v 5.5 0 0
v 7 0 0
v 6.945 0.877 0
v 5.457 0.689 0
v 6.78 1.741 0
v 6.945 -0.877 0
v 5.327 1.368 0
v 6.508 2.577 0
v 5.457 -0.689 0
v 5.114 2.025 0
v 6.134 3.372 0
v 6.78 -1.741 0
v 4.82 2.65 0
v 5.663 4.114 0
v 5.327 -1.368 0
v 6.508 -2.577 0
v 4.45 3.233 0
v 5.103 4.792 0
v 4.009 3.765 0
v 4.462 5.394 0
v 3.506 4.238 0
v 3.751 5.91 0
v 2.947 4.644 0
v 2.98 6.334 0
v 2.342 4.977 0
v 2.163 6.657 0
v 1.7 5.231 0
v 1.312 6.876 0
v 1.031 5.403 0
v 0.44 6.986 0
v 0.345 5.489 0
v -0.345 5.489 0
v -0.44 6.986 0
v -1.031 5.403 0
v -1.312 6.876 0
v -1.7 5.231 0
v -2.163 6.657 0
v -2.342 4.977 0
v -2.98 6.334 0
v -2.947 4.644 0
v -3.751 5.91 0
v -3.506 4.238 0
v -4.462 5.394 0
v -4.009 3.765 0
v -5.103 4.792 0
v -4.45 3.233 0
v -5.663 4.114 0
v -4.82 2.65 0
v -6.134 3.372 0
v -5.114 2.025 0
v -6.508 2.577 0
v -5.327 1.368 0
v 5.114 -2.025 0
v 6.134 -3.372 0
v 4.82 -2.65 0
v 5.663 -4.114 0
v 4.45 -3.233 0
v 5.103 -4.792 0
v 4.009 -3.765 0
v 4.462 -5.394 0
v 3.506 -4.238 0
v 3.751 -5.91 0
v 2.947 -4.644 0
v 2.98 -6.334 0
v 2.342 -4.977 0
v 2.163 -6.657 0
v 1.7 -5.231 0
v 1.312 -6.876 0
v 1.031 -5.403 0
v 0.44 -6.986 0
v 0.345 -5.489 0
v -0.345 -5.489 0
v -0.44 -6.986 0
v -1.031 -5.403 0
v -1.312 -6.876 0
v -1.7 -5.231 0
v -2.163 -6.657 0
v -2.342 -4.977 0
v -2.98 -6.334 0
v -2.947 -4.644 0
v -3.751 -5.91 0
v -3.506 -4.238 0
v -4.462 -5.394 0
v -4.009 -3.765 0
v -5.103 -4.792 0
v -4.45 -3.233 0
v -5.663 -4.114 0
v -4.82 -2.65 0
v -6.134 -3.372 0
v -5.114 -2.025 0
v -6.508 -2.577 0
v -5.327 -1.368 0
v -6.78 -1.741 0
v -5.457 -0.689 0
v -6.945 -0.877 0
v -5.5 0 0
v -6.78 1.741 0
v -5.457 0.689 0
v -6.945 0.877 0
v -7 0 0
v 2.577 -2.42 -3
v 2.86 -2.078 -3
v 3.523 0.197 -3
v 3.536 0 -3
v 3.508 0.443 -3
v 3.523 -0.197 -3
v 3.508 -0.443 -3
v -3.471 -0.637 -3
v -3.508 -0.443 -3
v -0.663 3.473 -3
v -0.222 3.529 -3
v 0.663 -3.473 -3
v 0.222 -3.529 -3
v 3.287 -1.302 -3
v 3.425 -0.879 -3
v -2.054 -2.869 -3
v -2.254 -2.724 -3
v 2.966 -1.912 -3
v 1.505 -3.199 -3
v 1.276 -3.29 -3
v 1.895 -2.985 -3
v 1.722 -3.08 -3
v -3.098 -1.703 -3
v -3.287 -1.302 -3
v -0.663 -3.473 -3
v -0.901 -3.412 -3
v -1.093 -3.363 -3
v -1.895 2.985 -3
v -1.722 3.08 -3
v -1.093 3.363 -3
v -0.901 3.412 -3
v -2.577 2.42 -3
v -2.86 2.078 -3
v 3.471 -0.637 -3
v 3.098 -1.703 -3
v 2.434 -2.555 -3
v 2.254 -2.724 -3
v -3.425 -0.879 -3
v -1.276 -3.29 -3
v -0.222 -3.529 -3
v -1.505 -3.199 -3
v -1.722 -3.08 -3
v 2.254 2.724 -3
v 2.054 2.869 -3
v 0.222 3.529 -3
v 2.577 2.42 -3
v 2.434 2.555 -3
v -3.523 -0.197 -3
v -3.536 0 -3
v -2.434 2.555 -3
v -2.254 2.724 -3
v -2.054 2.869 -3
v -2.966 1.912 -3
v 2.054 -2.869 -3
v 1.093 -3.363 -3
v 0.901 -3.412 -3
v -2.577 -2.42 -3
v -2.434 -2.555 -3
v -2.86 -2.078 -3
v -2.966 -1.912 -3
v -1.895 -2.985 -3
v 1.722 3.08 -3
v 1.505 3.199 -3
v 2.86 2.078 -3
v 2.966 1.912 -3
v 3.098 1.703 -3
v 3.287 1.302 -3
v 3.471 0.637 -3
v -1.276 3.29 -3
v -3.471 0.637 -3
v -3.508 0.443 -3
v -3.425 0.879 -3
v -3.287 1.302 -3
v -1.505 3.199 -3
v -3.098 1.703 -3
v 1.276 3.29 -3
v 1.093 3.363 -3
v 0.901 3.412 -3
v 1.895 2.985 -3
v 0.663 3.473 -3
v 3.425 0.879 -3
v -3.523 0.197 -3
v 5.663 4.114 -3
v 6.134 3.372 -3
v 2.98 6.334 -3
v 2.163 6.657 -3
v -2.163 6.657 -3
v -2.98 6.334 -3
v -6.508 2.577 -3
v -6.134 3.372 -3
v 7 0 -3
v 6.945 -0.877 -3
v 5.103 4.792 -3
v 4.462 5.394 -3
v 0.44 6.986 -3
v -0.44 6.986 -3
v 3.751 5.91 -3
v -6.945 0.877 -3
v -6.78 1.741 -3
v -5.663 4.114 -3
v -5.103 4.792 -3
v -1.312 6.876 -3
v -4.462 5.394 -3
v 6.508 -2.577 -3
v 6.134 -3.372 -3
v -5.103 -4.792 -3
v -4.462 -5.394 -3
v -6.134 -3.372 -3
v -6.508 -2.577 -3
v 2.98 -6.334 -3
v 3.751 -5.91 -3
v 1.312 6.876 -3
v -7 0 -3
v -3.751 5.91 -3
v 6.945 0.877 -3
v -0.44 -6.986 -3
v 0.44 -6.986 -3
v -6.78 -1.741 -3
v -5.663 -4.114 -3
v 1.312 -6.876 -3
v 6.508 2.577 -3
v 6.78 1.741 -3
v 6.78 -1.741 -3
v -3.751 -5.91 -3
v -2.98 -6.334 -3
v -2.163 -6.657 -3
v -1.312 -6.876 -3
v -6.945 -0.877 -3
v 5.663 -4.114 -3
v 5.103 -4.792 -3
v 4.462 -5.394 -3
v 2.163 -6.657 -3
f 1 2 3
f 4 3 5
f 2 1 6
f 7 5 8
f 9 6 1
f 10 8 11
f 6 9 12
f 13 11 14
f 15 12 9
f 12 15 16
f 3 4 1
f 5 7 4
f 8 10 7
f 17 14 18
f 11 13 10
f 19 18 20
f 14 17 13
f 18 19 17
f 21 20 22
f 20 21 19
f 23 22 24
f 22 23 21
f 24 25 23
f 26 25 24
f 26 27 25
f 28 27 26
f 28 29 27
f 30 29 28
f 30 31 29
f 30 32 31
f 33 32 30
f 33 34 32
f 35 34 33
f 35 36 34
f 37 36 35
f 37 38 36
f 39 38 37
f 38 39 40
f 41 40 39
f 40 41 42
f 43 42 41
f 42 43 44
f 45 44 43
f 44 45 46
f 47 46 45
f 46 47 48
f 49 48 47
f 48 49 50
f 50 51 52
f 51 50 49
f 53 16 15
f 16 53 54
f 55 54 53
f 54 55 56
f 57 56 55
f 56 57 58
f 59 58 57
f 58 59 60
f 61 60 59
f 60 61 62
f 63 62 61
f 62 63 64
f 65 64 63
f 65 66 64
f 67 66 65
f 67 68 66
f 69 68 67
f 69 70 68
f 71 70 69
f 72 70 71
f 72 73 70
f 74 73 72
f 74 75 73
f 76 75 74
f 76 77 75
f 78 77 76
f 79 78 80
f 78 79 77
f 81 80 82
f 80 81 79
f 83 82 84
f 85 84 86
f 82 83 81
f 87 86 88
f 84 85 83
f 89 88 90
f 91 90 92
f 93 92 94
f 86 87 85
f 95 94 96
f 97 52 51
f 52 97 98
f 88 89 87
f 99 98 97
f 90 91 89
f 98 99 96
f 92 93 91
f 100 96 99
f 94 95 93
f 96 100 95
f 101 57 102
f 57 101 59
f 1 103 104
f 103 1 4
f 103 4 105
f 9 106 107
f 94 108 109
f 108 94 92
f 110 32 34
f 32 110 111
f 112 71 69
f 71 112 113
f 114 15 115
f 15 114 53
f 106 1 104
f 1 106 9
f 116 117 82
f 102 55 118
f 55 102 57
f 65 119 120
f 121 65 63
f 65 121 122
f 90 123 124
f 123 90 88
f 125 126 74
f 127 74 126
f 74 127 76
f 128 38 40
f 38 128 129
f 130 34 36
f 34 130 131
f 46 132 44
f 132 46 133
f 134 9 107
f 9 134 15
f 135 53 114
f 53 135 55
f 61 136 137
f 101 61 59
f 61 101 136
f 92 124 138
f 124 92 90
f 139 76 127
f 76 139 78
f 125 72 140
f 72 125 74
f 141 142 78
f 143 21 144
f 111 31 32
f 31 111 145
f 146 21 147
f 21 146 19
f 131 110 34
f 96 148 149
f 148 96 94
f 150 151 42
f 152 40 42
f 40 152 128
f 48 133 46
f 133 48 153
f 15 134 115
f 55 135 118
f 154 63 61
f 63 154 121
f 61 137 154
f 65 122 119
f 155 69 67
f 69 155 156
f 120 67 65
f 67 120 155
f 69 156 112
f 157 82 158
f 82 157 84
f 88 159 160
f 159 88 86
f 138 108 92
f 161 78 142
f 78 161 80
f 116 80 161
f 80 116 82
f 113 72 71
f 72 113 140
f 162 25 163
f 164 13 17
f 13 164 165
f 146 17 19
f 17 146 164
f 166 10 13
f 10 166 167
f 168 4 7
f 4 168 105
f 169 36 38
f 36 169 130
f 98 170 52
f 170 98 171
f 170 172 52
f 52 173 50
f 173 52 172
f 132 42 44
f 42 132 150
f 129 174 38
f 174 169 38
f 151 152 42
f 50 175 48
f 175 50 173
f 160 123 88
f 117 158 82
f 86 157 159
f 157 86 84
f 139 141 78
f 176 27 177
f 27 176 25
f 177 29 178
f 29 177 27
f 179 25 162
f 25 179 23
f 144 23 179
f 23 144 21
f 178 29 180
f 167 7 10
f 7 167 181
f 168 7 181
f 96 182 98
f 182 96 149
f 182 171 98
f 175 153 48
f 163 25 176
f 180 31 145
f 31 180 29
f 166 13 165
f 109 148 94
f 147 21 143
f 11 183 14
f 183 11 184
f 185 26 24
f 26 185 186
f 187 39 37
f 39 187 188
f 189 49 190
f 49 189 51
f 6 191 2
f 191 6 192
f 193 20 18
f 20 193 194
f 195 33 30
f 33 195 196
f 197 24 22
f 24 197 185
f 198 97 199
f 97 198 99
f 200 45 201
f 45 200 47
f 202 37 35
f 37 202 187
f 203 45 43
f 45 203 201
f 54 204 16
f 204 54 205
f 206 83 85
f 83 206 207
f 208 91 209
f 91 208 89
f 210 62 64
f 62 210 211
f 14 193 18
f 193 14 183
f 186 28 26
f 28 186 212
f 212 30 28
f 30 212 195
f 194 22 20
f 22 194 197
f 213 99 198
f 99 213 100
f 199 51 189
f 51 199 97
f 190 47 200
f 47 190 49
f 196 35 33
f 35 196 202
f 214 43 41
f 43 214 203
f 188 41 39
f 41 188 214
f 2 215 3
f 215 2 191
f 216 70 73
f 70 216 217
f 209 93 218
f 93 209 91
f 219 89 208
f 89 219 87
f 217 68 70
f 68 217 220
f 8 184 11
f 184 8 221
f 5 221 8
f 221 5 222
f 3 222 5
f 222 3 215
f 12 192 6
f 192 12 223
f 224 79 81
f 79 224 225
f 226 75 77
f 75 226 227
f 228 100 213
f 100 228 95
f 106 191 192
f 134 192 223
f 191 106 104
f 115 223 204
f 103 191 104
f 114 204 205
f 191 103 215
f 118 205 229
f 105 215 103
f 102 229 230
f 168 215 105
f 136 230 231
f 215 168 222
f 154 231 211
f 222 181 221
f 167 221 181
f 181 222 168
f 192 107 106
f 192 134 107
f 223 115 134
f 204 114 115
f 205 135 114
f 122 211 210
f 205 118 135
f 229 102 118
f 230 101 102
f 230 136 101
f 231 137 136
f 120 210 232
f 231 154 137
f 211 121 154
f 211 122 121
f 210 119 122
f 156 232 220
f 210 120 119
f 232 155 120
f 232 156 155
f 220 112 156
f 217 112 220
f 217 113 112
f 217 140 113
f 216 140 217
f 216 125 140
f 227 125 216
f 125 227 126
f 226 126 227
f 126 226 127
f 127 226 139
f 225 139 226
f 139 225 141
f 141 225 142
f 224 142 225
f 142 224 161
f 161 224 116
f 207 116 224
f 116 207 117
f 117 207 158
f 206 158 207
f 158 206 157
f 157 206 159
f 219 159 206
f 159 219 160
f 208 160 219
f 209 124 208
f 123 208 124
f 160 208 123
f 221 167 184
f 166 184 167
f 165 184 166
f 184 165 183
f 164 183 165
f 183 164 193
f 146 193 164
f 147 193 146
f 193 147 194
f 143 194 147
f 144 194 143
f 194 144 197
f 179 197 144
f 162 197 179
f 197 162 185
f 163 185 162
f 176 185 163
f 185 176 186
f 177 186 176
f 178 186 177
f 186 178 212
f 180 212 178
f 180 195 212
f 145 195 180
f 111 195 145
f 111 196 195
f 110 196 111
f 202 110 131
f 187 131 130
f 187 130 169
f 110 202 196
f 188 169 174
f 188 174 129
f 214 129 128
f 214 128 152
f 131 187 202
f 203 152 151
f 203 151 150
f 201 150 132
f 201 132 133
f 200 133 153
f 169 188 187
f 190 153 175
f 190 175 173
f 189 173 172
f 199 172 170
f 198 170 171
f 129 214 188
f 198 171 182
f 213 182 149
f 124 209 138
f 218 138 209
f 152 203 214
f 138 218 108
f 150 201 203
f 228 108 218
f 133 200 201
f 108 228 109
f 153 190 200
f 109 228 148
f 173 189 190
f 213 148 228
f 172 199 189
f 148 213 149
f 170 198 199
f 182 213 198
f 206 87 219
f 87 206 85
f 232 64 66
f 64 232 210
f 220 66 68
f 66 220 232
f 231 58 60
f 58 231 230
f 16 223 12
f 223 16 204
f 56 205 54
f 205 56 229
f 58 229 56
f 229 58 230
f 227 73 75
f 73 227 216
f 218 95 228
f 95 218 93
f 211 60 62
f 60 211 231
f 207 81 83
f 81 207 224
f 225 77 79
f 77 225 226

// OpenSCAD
$fn = 50;


difference() {
	union() {
		translate(v = [0, 0, -3.0000000000]) {
			cylinder(h = 3, r = 7.0000000000);
		}
		cylinder(h = 0, r = 13.0000000000);
	}
	union() {
		translate(v = [0, 0, 0]) {
			rotate(a = [0, 0, 0]) {
				difference() {
					union() {
						#translate(v = [0, 0, -3.0000000000]) {
							cylinder(h = 3, r = 2.2500000000);
						}
						#translate(v = [0, 0, -4.2000000000]) {
							cylinder(h = 4.2000000000, r = 7.0000000000, r1 = 2.7500000000, r2 = 5.5000000000);
						}
						#translate(v = [0, 0, -3.0000000000]) {
							cylinder(h = 3, r = 2.7500000000);
						}
						#translate(v = [0, 0, -3.0000000000]) {
							cylinder(h = 3, r = 2.2500000000);
						}
					}
					union();
				}
			}
		}
	}
}
